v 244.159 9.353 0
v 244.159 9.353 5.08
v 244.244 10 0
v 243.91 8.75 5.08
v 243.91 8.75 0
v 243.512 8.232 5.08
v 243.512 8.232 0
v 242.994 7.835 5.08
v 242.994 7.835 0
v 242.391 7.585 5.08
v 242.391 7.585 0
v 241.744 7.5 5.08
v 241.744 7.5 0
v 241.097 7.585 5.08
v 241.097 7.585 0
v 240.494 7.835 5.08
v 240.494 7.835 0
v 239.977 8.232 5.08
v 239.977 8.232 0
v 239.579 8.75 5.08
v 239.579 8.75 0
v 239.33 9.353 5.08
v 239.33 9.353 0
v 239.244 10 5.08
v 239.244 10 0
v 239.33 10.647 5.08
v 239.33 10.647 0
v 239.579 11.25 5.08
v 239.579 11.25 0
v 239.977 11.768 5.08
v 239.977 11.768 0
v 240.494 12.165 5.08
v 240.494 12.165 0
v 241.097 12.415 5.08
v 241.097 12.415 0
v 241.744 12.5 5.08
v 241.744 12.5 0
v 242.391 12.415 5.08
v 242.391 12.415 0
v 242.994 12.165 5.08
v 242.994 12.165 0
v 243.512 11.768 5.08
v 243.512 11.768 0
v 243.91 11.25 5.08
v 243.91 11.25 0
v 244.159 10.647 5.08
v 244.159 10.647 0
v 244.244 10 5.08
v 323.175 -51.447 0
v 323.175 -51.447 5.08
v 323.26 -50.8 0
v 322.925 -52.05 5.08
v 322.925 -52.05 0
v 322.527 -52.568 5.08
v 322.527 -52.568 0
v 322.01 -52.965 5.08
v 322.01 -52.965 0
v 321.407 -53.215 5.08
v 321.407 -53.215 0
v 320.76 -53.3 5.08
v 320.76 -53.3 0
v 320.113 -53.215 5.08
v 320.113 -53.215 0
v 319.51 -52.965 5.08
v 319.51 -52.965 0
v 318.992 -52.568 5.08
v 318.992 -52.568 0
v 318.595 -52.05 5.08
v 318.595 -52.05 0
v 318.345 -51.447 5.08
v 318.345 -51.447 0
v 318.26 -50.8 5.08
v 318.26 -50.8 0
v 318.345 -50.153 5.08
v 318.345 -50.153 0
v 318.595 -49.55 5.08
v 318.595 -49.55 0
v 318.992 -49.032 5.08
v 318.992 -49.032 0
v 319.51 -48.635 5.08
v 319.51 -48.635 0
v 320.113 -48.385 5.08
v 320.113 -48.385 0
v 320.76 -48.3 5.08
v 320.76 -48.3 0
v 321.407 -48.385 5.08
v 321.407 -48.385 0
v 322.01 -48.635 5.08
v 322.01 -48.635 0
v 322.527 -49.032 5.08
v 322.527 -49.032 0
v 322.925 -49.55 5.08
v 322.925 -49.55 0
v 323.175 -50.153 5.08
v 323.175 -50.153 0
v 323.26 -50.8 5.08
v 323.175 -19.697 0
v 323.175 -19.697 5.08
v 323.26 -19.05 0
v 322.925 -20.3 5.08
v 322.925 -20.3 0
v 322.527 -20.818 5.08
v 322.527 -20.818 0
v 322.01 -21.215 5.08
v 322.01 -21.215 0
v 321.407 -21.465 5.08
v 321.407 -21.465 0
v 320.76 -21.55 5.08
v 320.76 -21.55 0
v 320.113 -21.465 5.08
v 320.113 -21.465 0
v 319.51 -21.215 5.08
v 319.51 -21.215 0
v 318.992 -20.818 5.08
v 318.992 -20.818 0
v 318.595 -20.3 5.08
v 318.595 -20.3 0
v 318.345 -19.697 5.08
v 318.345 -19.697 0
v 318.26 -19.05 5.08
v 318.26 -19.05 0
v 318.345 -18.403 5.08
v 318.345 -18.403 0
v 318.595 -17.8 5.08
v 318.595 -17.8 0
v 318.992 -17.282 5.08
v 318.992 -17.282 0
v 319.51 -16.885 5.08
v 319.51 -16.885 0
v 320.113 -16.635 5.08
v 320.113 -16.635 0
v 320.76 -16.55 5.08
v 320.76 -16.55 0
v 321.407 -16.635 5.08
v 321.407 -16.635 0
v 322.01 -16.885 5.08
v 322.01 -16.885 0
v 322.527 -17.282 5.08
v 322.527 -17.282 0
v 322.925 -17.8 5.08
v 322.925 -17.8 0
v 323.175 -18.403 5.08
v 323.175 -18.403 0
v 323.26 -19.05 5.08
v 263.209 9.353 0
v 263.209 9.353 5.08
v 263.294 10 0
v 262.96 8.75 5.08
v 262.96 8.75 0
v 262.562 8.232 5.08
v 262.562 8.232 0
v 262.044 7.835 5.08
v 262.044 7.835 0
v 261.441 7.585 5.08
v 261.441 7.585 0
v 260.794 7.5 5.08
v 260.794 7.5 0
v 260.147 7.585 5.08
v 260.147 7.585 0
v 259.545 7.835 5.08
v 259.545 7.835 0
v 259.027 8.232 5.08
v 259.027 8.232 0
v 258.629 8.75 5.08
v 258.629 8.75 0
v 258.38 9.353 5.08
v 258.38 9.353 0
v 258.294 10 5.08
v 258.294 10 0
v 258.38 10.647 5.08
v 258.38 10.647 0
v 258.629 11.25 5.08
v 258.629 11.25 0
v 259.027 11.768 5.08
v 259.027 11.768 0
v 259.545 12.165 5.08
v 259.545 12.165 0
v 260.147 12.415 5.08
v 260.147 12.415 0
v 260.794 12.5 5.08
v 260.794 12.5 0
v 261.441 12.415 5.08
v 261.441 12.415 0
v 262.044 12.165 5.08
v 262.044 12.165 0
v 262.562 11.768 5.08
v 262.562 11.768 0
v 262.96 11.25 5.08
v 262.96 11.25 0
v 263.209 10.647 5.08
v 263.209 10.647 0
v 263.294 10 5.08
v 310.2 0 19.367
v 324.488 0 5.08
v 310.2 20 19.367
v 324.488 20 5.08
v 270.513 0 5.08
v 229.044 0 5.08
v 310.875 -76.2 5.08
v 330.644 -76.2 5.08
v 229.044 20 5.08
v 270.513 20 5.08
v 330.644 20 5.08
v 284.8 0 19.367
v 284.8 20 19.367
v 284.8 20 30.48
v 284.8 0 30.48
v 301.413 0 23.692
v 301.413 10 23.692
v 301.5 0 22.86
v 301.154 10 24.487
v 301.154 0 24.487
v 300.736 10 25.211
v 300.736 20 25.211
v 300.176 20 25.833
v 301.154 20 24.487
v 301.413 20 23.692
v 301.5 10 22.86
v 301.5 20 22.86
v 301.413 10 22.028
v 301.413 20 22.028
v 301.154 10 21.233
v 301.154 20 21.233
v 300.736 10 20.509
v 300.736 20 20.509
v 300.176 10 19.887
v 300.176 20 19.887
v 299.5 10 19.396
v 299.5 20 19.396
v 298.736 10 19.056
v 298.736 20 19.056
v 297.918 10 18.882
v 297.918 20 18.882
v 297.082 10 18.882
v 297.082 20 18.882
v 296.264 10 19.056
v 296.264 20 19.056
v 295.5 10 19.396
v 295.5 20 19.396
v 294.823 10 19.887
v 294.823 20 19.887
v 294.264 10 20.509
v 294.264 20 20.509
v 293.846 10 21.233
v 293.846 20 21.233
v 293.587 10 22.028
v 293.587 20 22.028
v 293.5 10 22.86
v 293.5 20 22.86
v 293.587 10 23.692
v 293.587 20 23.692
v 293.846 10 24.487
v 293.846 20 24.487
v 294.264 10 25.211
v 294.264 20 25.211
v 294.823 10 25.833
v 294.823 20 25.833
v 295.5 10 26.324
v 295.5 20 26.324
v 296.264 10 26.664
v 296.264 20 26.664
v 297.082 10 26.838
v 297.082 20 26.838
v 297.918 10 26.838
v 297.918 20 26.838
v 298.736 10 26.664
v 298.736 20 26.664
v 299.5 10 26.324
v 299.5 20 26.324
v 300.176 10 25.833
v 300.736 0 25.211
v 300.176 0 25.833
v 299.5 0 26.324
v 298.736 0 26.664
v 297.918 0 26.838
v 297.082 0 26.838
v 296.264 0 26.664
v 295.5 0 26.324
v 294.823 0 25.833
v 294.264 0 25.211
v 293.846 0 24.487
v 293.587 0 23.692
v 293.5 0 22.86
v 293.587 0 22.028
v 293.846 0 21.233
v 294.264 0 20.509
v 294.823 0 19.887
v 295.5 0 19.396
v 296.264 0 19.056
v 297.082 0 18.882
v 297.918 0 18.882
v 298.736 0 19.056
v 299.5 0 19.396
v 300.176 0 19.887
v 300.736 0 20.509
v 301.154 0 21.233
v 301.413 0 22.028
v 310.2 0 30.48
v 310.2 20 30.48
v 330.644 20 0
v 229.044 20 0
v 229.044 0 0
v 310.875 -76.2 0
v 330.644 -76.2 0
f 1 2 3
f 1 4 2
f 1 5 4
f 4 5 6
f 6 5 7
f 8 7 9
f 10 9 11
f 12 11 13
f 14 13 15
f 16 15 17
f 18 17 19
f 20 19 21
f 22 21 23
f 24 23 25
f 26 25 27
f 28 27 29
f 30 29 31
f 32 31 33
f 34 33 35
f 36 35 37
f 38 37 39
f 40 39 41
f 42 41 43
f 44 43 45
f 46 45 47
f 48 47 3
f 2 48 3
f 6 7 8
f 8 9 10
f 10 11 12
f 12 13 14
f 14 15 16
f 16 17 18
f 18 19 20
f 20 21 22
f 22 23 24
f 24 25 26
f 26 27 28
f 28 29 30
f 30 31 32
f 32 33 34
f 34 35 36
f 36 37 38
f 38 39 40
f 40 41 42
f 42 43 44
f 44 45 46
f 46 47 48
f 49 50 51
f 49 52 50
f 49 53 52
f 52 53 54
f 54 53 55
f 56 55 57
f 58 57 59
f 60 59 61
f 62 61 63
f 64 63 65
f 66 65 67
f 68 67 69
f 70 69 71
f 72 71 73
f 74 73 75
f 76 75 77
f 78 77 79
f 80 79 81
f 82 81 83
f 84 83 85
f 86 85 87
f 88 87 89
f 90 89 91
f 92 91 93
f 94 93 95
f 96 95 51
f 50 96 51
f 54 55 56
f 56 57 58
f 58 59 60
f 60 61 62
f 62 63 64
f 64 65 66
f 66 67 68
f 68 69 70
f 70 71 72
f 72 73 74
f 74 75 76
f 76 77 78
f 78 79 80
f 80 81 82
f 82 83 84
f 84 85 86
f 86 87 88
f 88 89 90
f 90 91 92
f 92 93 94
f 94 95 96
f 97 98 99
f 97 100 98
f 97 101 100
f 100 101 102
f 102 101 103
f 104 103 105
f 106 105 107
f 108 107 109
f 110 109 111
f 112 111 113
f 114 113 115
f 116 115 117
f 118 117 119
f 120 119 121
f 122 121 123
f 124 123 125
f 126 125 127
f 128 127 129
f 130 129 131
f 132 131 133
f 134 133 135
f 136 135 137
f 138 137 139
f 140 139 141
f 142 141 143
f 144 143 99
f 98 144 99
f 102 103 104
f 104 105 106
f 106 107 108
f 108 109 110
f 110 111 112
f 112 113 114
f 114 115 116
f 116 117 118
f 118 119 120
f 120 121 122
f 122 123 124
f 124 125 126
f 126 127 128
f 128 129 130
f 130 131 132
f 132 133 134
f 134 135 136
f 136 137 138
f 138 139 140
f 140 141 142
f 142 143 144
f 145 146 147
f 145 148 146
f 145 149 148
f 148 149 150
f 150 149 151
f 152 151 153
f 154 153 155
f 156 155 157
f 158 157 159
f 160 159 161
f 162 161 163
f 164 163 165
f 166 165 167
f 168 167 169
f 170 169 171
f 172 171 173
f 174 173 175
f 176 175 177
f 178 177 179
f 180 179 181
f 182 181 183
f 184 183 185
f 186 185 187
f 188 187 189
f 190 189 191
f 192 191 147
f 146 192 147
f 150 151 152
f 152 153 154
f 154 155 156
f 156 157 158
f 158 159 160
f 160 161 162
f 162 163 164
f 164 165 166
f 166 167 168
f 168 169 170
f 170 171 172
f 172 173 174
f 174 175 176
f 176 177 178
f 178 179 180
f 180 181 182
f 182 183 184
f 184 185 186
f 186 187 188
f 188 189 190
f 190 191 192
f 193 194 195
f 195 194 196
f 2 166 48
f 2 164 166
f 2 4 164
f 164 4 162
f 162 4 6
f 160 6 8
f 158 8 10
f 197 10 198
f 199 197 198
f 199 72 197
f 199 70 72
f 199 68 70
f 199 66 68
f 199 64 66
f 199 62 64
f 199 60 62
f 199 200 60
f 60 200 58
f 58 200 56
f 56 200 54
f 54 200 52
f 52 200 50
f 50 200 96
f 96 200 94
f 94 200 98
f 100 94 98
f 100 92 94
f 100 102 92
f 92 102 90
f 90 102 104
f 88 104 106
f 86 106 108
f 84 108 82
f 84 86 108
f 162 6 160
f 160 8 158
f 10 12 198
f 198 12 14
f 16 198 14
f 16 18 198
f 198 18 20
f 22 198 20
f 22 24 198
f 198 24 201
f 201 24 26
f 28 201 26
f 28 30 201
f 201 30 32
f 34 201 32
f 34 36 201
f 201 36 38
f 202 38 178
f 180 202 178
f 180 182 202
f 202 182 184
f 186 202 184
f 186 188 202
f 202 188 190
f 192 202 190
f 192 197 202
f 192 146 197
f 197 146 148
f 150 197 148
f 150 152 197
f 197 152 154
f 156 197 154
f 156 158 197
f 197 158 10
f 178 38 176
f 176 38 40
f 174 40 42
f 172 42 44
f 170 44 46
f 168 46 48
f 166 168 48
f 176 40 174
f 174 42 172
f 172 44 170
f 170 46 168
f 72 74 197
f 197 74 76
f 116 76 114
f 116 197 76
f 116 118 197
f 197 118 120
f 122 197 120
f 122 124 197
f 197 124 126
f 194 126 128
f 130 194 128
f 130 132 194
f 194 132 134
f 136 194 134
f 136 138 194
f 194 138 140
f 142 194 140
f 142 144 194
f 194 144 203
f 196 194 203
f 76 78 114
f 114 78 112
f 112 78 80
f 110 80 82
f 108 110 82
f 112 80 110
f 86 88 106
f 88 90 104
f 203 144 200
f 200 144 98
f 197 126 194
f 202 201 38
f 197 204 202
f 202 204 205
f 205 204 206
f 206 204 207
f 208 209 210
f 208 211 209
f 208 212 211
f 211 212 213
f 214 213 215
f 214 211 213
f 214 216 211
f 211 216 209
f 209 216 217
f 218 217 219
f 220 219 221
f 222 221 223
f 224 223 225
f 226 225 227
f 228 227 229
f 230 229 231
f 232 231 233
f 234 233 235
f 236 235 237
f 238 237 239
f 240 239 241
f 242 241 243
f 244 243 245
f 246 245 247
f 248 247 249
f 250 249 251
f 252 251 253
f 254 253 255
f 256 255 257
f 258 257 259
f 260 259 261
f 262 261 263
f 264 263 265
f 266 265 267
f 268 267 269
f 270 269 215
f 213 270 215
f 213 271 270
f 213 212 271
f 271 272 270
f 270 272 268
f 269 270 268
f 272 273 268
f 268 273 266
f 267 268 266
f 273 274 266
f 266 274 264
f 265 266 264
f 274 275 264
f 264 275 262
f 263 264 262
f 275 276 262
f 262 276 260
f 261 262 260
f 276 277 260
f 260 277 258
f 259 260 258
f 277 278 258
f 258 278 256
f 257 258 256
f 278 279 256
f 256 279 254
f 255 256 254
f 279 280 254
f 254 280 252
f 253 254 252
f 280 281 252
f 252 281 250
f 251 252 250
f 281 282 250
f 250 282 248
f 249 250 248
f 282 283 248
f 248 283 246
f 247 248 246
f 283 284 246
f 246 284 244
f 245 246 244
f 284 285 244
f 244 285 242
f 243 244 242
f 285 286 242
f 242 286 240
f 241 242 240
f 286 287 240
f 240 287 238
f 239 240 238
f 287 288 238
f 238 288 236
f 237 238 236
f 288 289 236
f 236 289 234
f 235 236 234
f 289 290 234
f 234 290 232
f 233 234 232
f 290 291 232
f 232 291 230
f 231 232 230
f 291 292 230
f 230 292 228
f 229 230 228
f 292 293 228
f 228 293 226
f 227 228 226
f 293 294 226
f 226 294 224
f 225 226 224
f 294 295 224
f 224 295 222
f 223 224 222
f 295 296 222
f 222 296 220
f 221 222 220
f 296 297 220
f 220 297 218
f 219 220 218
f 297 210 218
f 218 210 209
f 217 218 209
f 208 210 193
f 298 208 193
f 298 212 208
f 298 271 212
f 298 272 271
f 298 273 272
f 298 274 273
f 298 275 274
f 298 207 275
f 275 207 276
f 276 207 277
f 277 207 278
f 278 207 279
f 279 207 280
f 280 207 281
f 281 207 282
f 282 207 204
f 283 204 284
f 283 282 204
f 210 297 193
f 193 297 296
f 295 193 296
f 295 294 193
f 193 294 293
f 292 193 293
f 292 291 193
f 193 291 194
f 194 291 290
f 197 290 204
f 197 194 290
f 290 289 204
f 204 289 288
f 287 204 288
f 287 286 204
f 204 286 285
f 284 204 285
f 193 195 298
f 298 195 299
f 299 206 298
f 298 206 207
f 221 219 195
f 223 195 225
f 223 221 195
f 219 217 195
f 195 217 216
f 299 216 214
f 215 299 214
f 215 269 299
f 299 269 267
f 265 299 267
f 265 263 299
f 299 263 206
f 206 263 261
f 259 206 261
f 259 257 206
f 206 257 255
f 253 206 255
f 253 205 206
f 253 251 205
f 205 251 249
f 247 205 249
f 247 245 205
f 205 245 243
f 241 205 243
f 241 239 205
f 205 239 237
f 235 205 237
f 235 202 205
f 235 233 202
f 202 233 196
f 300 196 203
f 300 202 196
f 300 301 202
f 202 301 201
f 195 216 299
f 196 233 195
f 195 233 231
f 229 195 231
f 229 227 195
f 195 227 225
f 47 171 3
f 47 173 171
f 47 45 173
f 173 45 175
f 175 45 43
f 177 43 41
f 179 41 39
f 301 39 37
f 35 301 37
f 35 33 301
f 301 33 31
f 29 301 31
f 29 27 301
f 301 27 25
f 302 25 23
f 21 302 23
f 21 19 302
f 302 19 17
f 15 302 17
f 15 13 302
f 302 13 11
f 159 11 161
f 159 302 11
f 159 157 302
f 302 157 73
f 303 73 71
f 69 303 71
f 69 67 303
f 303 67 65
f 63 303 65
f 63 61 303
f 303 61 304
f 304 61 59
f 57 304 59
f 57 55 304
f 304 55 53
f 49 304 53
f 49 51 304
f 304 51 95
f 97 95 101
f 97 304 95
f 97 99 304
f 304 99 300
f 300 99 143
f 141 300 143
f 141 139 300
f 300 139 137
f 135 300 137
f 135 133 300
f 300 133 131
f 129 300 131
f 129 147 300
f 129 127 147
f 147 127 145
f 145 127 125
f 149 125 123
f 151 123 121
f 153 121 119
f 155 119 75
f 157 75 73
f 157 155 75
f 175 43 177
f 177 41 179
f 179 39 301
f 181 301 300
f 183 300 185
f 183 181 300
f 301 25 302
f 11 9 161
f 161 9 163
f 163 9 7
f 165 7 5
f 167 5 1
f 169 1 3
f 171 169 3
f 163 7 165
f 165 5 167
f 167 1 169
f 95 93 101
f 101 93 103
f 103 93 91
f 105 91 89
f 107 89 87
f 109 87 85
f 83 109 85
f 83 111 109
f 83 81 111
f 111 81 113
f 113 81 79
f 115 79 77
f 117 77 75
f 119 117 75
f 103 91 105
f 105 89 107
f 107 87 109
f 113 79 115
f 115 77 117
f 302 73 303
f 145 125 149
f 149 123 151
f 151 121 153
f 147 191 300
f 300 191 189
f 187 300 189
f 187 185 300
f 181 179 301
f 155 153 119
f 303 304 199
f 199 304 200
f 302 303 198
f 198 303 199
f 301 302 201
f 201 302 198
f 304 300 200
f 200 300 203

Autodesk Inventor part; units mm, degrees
ref_plane "YZ Plane" through (0, 0, 0) normal (1, 0, 0) x (0, 1, 0)
ref_plane "XZ Plane" through (0, 0, 0) normal (0, 1, 0) x (-1, 0, 0)
ref_plane "XY Plane" through (0, 0, 0) normal (0, 0, 1) x (1, 0, 0)
ref_plane "Work Plane1" through (0, 0, 0) normal (0, 0, 1) x (1, 0, 0)
sketch "Sketch1" plane through (0, 0, 0) normal (0, 0, 1) x (1, 0, 0)
  line L0 (0, 0) -> (304.8, 0)
  line L1 (304.8, 0) -> (292.1, 0)
  line L2 (-330.2, 20) -> (330.2, 20) projected
  line L3 (-330.2, 0) -> (-330.2, 20) projected
  line L4 (330.2, 0) -> (-330.2, 0) projected
  line L5 (330.2, 20) -> (330.2, 0) projected
  line L6 (292.1, 0) -> (292.1, 10)
  line L7 (330.6445, 0) -> (253.5555, 0)
  line L8 (253.5555, 0) -> (253.5555, 20)
  line L9 (253.5555, 20) -> (330.6445, 20)
  line L10 (330.6445, 20) -> (330.6445, 0)
  line L11 (330.6445, 0) -> (253.5555, 20) construction
  line L12 (253.5555, 0) -> (330.6445, 20) construction
  line L13 (330.6445, 0) -> (330.6445, -76.2)
  line L14 (330.6445, 0) -> (406.8445, 0) construction
  line L15 (330.6445, -76.2) -> (310.8751, -76.2)
  line L16 (330.6445, 20) -> (229.0445, 20)
  line L17 (229.0445, 20) -> (229.0445, 0)
  line L18 (229.0445, 0) -> (310.8751, -76.2)
  line L19 (310.8751, -76.2) -> (310.8751, 0)
  dimension "d0" = 304.8
  dimension "d1" = 12.7
  dimension "d2" = 76.2
  dimension "d3" = 90
  dimension "d4" = 101.6
extrude "Extrusion1" add sketch "Sketch1" along normal blind 5.08 contours L17 L2 L8 L0 | L0 L4 L19 L18 | L8 L2 L5 L4 L0 | L19 L4 L7 L13 L15 | L9 L10 L7 L5
sketch "Sketch2" plane through (0, 0, 5.08) normal (0, 0, 1) x (1, 0, 0)
  line L0 (310.2, -876.3) -> (310.2, 0) projected
  line L1 (310.2, 0) -> (297.5, 0)
  line L2 (297.5, 0) -> (297.5, 10)
  line L3 (284.8, 20) -> (310.2, 20)
  line L4 (310.2, 20) -> (310.2, 0)
  line L5 (310.2, 0) -> (284.8, 0)
  line L6 (284.8, 0) -> (284.8, 20)
  line L7 (284.8, 20) -> (310.2, 0) construction
  line L8 (310.2, 20) -> (284.8, 0) construction
  point P0 (0, 0)
  dimension "d7" = 12.7
  dimension "d8" = 10
  dimension "d9" = 90
extrude "Extrusion2" add sketch "Sketch2" along normal blind 25.4
sketch "Sketch3" plane through (229.0445, 20, 0) normal (0, 1, 0) x (1, 0, 0)
  line L0 (101.6, 0) -> (0, 0) projected
  line L1 (0, 0) -> (0, -5.08) projected
  line L2 (55.7555, -5.08) -> (0, -5.08) projected
  line L3 (55.7555, -5.08) -> (55.7555, -30.48) projected
  line L4 (81.1555, -30.48) -> (55.7555, -30.48) projected
  line L5 (81.1555, -5.08) -> (81.1555, -30.48) projected
  line L6 (101.6, -5.08) -> (81.1555, -5.08) projected
  line L7 (101.6, 0) -> (101.6, -5.08) projected
  circle A0 centre (68.4555, -22.86) radius 4
  point P0 (-229.0445, 0)
  dimension "d12" = 8
  dimension "d13" = 7.62
extrude "Extrusion3" cut sketch "Sketch3" against normal blind 101.6 contours A0
chamfer "Chamfer1" distance 14.2875 angle 45 2 edges at (284.8, 10, 5.08) (310.2, 10, 5.08)
sketch "Sketch4" plane through (0, 0, 5.08) normal (0, 0, 1) x (1, 0, 0)
  line L0 (324.4875, 0) -> (324.4875, 20) projected
  line L1 (324.4875, 0) -> (270.5125, 0) projected
  line L2 (270.5125, 20) -> (270.5125, 0) projected
  line L3 (270.5125, 20) -> (229.0445, 20) projected
  line L4 (229.0445, 20) -> (229.0445, 0) projected
  line L5 (229.0445, 0) -> (310.8751, -76.2) projected
  line L6 (310.8751, -76.2) -> (330.6445, -76.2) projected
  line L7 (330.6445, -76.2) -> (330.6445, 20) projected
  line L8 (330.6445, 20) -> (324.4875, 20) projected
  line L9 (330.2, 0) -> (330.2, -876.3) projected
  line L10 (310.2, 0) -> (330.2, 0) projected
  line L11 (310.2, -876.3) -> (310.2, 0) projected
  line L12 (330.2, -876.3) -> (310.2, -876.3) projected
  line L13 (324.4875, 0) -> (324.4875, 20) projected
  line L14 (324.4875, 0) -> (270.5125, 0) projected
  line L15 (270.5125, 20) -> (270.5125, 0) projected
  line L16 (270.5125, 20) -> (229.0445, 20) projected
  line L17 (229.0445, 20) -> (229.0445, 0) projected
  line L18 (229.0445, 0) -> (310.8751, -76.2) projected
  line L19 (310.8751, -76.2) -> (330.6445, -76.2) projected
  line L20 (330.6445, -76.2) -> (330.6445, 20) projected
  line L21 (330.6445, 20) -> (324.4875, 20) projected
  line L22 (330.2, 0) -> (-330.2, 0) projected
  circle A0 centre (320.7598, -50.8) radius 2.5
  circle A1 centre (320.7598, -19.05) radius 2.5
  circle A2 centre (241.7445, 10) radius 2.5
  circle A3 centre (260.7945, 10) radius 2.5
  point P0 (0, 0)
  dimension "d19" = 5
  dimension "d20" = 5
  dimension "d21" = 31.75
  dimension "d22" = 25.4
  dimension "d23" = 5
  dimension "d24" = 5
  dimension "d25" = 12.7
  dimension "d26" = 19.05
extrude "Extrusion4" cut sketch "Sketch4" against normal blind 101.6 contours A0 | A1 | A2 | A3
properties part number "Bed Bracket"
